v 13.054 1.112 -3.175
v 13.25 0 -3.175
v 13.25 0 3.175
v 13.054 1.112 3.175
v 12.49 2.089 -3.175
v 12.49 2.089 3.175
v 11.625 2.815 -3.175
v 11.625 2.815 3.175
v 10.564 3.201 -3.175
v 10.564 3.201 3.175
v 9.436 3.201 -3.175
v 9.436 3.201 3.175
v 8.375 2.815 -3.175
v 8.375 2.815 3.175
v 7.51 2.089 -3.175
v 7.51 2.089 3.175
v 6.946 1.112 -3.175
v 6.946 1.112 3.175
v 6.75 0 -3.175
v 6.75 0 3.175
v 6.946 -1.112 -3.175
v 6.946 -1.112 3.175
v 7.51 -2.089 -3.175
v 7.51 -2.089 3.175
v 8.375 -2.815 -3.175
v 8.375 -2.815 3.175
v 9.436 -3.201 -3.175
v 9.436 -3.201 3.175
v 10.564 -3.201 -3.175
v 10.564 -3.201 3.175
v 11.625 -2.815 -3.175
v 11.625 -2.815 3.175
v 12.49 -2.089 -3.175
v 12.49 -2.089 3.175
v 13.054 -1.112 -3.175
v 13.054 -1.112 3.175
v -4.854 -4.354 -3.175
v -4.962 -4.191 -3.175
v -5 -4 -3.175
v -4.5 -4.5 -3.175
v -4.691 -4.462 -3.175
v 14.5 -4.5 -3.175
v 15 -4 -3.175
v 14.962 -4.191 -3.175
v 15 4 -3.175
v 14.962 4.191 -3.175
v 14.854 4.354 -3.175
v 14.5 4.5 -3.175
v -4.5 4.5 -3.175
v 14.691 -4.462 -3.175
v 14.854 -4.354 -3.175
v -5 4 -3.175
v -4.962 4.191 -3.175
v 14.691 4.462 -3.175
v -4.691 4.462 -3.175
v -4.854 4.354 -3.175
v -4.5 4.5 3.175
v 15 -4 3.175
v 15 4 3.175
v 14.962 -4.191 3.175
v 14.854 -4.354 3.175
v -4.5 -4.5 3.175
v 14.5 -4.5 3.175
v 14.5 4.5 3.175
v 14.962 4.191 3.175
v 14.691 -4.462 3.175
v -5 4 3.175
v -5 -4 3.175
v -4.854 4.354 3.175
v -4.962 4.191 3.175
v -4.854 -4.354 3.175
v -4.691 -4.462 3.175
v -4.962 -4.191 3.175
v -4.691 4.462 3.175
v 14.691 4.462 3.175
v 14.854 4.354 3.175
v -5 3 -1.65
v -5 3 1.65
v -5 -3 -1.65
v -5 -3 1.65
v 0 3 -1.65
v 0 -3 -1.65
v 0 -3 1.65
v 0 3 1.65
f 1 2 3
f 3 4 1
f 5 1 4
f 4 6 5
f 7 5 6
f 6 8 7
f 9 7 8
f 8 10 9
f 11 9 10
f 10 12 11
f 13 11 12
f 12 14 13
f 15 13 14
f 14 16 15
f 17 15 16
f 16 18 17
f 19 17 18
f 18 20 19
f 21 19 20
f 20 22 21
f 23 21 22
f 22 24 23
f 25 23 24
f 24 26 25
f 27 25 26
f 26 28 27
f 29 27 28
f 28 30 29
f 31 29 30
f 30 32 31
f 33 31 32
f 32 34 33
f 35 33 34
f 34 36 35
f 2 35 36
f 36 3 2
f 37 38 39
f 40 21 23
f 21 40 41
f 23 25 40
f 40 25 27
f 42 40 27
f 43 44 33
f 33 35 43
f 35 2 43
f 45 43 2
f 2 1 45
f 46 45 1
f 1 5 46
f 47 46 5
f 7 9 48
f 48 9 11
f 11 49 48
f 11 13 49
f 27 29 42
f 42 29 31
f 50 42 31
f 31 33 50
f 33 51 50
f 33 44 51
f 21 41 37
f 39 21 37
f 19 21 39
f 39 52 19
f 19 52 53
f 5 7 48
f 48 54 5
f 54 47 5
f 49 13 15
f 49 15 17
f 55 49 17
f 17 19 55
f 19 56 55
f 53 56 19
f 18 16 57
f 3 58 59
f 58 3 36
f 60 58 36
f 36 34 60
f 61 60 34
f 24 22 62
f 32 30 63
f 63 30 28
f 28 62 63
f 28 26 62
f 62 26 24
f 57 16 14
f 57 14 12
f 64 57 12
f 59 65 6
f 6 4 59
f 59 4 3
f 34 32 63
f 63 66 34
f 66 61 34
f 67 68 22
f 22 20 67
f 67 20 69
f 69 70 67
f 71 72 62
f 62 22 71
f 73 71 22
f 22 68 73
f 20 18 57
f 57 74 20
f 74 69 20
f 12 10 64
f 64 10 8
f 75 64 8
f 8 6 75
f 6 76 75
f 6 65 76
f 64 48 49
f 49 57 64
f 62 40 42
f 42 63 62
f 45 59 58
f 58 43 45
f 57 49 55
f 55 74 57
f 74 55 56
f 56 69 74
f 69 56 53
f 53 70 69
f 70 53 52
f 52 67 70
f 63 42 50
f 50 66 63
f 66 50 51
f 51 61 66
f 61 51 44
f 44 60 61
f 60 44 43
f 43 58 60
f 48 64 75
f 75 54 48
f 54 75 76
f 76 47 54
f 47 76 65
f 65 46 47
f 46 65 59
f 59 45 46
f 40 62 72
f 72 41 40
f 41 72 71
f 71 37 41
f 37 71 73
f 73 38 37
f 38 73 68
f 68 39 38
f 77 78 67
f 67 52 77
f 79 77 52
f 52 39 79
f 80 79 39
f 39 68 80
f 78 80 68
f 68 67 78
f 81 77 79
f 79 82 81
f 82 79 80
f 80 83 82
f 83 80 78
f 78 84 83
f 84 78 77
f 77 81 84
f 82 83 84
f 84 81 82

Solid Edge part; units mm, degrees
sketch "Sketch1" plane through (0, 0, 0) normal (1, 0, 0) x (0, 1, 0)
  line L0 (4.5, -3.175) -> (4.5, 3.175)
  line L1 (4.5, 3.175) -> (-4.5, 3.175)
  line L2 (-4.5, 3.175) -> (-4.5, -3.175)
  line L3 (-4.5, -3.175) -> (4.5, -3.175)
  line L4 (3, -1.65) -> (3, 1.65)
  line L5 (3, 1.65) -> (-3, 1.65)
  line L6 (-3, 1.65) -> (-3, -1.65)
  line L7 (-3, -1.65) -> (3, -1.65)
  dimension "D1" = 3.3
  dimension "D2" = 6
  dimension "D3" = 9
  dimension "D4" = 6.35
extrude "Protrusion1" add sketch "Sketch1" against normal blind 5
sketch "Sketch2" plane through (0, 0, 0) normal (1, 0, 0) x (0, 1, 0)
  line L0 (4.5, -3.175) -> (4.5, 3.175)
  line L1 (4.5, 3.175) -> (-4.5, 3.175)
  line L2 (-4.5, 3.175) -> (-4.5, -3.175)
  line L3 (-4.5, -3.175) -> (4.5, -3.175)
extrude "ExtrudedProtrusion_2" add sketch "Sketch2" along normal blind 15
sketch "Sketch3" plane through (2.2625, 0, 3.175) normal (0, 0, 1) x (1, 0, 0)
  circle A0 centre (7.7375, 0) radius 3.25
extrude "Cutout1" cut sketch "Sketch3" against normal up to next
fillet "Round1" radius 0.5 4 edges at (-5, 4.5, 0) (-5, -4.5, 0) (15, 4.5, 0) (15, -4.5, 0)
